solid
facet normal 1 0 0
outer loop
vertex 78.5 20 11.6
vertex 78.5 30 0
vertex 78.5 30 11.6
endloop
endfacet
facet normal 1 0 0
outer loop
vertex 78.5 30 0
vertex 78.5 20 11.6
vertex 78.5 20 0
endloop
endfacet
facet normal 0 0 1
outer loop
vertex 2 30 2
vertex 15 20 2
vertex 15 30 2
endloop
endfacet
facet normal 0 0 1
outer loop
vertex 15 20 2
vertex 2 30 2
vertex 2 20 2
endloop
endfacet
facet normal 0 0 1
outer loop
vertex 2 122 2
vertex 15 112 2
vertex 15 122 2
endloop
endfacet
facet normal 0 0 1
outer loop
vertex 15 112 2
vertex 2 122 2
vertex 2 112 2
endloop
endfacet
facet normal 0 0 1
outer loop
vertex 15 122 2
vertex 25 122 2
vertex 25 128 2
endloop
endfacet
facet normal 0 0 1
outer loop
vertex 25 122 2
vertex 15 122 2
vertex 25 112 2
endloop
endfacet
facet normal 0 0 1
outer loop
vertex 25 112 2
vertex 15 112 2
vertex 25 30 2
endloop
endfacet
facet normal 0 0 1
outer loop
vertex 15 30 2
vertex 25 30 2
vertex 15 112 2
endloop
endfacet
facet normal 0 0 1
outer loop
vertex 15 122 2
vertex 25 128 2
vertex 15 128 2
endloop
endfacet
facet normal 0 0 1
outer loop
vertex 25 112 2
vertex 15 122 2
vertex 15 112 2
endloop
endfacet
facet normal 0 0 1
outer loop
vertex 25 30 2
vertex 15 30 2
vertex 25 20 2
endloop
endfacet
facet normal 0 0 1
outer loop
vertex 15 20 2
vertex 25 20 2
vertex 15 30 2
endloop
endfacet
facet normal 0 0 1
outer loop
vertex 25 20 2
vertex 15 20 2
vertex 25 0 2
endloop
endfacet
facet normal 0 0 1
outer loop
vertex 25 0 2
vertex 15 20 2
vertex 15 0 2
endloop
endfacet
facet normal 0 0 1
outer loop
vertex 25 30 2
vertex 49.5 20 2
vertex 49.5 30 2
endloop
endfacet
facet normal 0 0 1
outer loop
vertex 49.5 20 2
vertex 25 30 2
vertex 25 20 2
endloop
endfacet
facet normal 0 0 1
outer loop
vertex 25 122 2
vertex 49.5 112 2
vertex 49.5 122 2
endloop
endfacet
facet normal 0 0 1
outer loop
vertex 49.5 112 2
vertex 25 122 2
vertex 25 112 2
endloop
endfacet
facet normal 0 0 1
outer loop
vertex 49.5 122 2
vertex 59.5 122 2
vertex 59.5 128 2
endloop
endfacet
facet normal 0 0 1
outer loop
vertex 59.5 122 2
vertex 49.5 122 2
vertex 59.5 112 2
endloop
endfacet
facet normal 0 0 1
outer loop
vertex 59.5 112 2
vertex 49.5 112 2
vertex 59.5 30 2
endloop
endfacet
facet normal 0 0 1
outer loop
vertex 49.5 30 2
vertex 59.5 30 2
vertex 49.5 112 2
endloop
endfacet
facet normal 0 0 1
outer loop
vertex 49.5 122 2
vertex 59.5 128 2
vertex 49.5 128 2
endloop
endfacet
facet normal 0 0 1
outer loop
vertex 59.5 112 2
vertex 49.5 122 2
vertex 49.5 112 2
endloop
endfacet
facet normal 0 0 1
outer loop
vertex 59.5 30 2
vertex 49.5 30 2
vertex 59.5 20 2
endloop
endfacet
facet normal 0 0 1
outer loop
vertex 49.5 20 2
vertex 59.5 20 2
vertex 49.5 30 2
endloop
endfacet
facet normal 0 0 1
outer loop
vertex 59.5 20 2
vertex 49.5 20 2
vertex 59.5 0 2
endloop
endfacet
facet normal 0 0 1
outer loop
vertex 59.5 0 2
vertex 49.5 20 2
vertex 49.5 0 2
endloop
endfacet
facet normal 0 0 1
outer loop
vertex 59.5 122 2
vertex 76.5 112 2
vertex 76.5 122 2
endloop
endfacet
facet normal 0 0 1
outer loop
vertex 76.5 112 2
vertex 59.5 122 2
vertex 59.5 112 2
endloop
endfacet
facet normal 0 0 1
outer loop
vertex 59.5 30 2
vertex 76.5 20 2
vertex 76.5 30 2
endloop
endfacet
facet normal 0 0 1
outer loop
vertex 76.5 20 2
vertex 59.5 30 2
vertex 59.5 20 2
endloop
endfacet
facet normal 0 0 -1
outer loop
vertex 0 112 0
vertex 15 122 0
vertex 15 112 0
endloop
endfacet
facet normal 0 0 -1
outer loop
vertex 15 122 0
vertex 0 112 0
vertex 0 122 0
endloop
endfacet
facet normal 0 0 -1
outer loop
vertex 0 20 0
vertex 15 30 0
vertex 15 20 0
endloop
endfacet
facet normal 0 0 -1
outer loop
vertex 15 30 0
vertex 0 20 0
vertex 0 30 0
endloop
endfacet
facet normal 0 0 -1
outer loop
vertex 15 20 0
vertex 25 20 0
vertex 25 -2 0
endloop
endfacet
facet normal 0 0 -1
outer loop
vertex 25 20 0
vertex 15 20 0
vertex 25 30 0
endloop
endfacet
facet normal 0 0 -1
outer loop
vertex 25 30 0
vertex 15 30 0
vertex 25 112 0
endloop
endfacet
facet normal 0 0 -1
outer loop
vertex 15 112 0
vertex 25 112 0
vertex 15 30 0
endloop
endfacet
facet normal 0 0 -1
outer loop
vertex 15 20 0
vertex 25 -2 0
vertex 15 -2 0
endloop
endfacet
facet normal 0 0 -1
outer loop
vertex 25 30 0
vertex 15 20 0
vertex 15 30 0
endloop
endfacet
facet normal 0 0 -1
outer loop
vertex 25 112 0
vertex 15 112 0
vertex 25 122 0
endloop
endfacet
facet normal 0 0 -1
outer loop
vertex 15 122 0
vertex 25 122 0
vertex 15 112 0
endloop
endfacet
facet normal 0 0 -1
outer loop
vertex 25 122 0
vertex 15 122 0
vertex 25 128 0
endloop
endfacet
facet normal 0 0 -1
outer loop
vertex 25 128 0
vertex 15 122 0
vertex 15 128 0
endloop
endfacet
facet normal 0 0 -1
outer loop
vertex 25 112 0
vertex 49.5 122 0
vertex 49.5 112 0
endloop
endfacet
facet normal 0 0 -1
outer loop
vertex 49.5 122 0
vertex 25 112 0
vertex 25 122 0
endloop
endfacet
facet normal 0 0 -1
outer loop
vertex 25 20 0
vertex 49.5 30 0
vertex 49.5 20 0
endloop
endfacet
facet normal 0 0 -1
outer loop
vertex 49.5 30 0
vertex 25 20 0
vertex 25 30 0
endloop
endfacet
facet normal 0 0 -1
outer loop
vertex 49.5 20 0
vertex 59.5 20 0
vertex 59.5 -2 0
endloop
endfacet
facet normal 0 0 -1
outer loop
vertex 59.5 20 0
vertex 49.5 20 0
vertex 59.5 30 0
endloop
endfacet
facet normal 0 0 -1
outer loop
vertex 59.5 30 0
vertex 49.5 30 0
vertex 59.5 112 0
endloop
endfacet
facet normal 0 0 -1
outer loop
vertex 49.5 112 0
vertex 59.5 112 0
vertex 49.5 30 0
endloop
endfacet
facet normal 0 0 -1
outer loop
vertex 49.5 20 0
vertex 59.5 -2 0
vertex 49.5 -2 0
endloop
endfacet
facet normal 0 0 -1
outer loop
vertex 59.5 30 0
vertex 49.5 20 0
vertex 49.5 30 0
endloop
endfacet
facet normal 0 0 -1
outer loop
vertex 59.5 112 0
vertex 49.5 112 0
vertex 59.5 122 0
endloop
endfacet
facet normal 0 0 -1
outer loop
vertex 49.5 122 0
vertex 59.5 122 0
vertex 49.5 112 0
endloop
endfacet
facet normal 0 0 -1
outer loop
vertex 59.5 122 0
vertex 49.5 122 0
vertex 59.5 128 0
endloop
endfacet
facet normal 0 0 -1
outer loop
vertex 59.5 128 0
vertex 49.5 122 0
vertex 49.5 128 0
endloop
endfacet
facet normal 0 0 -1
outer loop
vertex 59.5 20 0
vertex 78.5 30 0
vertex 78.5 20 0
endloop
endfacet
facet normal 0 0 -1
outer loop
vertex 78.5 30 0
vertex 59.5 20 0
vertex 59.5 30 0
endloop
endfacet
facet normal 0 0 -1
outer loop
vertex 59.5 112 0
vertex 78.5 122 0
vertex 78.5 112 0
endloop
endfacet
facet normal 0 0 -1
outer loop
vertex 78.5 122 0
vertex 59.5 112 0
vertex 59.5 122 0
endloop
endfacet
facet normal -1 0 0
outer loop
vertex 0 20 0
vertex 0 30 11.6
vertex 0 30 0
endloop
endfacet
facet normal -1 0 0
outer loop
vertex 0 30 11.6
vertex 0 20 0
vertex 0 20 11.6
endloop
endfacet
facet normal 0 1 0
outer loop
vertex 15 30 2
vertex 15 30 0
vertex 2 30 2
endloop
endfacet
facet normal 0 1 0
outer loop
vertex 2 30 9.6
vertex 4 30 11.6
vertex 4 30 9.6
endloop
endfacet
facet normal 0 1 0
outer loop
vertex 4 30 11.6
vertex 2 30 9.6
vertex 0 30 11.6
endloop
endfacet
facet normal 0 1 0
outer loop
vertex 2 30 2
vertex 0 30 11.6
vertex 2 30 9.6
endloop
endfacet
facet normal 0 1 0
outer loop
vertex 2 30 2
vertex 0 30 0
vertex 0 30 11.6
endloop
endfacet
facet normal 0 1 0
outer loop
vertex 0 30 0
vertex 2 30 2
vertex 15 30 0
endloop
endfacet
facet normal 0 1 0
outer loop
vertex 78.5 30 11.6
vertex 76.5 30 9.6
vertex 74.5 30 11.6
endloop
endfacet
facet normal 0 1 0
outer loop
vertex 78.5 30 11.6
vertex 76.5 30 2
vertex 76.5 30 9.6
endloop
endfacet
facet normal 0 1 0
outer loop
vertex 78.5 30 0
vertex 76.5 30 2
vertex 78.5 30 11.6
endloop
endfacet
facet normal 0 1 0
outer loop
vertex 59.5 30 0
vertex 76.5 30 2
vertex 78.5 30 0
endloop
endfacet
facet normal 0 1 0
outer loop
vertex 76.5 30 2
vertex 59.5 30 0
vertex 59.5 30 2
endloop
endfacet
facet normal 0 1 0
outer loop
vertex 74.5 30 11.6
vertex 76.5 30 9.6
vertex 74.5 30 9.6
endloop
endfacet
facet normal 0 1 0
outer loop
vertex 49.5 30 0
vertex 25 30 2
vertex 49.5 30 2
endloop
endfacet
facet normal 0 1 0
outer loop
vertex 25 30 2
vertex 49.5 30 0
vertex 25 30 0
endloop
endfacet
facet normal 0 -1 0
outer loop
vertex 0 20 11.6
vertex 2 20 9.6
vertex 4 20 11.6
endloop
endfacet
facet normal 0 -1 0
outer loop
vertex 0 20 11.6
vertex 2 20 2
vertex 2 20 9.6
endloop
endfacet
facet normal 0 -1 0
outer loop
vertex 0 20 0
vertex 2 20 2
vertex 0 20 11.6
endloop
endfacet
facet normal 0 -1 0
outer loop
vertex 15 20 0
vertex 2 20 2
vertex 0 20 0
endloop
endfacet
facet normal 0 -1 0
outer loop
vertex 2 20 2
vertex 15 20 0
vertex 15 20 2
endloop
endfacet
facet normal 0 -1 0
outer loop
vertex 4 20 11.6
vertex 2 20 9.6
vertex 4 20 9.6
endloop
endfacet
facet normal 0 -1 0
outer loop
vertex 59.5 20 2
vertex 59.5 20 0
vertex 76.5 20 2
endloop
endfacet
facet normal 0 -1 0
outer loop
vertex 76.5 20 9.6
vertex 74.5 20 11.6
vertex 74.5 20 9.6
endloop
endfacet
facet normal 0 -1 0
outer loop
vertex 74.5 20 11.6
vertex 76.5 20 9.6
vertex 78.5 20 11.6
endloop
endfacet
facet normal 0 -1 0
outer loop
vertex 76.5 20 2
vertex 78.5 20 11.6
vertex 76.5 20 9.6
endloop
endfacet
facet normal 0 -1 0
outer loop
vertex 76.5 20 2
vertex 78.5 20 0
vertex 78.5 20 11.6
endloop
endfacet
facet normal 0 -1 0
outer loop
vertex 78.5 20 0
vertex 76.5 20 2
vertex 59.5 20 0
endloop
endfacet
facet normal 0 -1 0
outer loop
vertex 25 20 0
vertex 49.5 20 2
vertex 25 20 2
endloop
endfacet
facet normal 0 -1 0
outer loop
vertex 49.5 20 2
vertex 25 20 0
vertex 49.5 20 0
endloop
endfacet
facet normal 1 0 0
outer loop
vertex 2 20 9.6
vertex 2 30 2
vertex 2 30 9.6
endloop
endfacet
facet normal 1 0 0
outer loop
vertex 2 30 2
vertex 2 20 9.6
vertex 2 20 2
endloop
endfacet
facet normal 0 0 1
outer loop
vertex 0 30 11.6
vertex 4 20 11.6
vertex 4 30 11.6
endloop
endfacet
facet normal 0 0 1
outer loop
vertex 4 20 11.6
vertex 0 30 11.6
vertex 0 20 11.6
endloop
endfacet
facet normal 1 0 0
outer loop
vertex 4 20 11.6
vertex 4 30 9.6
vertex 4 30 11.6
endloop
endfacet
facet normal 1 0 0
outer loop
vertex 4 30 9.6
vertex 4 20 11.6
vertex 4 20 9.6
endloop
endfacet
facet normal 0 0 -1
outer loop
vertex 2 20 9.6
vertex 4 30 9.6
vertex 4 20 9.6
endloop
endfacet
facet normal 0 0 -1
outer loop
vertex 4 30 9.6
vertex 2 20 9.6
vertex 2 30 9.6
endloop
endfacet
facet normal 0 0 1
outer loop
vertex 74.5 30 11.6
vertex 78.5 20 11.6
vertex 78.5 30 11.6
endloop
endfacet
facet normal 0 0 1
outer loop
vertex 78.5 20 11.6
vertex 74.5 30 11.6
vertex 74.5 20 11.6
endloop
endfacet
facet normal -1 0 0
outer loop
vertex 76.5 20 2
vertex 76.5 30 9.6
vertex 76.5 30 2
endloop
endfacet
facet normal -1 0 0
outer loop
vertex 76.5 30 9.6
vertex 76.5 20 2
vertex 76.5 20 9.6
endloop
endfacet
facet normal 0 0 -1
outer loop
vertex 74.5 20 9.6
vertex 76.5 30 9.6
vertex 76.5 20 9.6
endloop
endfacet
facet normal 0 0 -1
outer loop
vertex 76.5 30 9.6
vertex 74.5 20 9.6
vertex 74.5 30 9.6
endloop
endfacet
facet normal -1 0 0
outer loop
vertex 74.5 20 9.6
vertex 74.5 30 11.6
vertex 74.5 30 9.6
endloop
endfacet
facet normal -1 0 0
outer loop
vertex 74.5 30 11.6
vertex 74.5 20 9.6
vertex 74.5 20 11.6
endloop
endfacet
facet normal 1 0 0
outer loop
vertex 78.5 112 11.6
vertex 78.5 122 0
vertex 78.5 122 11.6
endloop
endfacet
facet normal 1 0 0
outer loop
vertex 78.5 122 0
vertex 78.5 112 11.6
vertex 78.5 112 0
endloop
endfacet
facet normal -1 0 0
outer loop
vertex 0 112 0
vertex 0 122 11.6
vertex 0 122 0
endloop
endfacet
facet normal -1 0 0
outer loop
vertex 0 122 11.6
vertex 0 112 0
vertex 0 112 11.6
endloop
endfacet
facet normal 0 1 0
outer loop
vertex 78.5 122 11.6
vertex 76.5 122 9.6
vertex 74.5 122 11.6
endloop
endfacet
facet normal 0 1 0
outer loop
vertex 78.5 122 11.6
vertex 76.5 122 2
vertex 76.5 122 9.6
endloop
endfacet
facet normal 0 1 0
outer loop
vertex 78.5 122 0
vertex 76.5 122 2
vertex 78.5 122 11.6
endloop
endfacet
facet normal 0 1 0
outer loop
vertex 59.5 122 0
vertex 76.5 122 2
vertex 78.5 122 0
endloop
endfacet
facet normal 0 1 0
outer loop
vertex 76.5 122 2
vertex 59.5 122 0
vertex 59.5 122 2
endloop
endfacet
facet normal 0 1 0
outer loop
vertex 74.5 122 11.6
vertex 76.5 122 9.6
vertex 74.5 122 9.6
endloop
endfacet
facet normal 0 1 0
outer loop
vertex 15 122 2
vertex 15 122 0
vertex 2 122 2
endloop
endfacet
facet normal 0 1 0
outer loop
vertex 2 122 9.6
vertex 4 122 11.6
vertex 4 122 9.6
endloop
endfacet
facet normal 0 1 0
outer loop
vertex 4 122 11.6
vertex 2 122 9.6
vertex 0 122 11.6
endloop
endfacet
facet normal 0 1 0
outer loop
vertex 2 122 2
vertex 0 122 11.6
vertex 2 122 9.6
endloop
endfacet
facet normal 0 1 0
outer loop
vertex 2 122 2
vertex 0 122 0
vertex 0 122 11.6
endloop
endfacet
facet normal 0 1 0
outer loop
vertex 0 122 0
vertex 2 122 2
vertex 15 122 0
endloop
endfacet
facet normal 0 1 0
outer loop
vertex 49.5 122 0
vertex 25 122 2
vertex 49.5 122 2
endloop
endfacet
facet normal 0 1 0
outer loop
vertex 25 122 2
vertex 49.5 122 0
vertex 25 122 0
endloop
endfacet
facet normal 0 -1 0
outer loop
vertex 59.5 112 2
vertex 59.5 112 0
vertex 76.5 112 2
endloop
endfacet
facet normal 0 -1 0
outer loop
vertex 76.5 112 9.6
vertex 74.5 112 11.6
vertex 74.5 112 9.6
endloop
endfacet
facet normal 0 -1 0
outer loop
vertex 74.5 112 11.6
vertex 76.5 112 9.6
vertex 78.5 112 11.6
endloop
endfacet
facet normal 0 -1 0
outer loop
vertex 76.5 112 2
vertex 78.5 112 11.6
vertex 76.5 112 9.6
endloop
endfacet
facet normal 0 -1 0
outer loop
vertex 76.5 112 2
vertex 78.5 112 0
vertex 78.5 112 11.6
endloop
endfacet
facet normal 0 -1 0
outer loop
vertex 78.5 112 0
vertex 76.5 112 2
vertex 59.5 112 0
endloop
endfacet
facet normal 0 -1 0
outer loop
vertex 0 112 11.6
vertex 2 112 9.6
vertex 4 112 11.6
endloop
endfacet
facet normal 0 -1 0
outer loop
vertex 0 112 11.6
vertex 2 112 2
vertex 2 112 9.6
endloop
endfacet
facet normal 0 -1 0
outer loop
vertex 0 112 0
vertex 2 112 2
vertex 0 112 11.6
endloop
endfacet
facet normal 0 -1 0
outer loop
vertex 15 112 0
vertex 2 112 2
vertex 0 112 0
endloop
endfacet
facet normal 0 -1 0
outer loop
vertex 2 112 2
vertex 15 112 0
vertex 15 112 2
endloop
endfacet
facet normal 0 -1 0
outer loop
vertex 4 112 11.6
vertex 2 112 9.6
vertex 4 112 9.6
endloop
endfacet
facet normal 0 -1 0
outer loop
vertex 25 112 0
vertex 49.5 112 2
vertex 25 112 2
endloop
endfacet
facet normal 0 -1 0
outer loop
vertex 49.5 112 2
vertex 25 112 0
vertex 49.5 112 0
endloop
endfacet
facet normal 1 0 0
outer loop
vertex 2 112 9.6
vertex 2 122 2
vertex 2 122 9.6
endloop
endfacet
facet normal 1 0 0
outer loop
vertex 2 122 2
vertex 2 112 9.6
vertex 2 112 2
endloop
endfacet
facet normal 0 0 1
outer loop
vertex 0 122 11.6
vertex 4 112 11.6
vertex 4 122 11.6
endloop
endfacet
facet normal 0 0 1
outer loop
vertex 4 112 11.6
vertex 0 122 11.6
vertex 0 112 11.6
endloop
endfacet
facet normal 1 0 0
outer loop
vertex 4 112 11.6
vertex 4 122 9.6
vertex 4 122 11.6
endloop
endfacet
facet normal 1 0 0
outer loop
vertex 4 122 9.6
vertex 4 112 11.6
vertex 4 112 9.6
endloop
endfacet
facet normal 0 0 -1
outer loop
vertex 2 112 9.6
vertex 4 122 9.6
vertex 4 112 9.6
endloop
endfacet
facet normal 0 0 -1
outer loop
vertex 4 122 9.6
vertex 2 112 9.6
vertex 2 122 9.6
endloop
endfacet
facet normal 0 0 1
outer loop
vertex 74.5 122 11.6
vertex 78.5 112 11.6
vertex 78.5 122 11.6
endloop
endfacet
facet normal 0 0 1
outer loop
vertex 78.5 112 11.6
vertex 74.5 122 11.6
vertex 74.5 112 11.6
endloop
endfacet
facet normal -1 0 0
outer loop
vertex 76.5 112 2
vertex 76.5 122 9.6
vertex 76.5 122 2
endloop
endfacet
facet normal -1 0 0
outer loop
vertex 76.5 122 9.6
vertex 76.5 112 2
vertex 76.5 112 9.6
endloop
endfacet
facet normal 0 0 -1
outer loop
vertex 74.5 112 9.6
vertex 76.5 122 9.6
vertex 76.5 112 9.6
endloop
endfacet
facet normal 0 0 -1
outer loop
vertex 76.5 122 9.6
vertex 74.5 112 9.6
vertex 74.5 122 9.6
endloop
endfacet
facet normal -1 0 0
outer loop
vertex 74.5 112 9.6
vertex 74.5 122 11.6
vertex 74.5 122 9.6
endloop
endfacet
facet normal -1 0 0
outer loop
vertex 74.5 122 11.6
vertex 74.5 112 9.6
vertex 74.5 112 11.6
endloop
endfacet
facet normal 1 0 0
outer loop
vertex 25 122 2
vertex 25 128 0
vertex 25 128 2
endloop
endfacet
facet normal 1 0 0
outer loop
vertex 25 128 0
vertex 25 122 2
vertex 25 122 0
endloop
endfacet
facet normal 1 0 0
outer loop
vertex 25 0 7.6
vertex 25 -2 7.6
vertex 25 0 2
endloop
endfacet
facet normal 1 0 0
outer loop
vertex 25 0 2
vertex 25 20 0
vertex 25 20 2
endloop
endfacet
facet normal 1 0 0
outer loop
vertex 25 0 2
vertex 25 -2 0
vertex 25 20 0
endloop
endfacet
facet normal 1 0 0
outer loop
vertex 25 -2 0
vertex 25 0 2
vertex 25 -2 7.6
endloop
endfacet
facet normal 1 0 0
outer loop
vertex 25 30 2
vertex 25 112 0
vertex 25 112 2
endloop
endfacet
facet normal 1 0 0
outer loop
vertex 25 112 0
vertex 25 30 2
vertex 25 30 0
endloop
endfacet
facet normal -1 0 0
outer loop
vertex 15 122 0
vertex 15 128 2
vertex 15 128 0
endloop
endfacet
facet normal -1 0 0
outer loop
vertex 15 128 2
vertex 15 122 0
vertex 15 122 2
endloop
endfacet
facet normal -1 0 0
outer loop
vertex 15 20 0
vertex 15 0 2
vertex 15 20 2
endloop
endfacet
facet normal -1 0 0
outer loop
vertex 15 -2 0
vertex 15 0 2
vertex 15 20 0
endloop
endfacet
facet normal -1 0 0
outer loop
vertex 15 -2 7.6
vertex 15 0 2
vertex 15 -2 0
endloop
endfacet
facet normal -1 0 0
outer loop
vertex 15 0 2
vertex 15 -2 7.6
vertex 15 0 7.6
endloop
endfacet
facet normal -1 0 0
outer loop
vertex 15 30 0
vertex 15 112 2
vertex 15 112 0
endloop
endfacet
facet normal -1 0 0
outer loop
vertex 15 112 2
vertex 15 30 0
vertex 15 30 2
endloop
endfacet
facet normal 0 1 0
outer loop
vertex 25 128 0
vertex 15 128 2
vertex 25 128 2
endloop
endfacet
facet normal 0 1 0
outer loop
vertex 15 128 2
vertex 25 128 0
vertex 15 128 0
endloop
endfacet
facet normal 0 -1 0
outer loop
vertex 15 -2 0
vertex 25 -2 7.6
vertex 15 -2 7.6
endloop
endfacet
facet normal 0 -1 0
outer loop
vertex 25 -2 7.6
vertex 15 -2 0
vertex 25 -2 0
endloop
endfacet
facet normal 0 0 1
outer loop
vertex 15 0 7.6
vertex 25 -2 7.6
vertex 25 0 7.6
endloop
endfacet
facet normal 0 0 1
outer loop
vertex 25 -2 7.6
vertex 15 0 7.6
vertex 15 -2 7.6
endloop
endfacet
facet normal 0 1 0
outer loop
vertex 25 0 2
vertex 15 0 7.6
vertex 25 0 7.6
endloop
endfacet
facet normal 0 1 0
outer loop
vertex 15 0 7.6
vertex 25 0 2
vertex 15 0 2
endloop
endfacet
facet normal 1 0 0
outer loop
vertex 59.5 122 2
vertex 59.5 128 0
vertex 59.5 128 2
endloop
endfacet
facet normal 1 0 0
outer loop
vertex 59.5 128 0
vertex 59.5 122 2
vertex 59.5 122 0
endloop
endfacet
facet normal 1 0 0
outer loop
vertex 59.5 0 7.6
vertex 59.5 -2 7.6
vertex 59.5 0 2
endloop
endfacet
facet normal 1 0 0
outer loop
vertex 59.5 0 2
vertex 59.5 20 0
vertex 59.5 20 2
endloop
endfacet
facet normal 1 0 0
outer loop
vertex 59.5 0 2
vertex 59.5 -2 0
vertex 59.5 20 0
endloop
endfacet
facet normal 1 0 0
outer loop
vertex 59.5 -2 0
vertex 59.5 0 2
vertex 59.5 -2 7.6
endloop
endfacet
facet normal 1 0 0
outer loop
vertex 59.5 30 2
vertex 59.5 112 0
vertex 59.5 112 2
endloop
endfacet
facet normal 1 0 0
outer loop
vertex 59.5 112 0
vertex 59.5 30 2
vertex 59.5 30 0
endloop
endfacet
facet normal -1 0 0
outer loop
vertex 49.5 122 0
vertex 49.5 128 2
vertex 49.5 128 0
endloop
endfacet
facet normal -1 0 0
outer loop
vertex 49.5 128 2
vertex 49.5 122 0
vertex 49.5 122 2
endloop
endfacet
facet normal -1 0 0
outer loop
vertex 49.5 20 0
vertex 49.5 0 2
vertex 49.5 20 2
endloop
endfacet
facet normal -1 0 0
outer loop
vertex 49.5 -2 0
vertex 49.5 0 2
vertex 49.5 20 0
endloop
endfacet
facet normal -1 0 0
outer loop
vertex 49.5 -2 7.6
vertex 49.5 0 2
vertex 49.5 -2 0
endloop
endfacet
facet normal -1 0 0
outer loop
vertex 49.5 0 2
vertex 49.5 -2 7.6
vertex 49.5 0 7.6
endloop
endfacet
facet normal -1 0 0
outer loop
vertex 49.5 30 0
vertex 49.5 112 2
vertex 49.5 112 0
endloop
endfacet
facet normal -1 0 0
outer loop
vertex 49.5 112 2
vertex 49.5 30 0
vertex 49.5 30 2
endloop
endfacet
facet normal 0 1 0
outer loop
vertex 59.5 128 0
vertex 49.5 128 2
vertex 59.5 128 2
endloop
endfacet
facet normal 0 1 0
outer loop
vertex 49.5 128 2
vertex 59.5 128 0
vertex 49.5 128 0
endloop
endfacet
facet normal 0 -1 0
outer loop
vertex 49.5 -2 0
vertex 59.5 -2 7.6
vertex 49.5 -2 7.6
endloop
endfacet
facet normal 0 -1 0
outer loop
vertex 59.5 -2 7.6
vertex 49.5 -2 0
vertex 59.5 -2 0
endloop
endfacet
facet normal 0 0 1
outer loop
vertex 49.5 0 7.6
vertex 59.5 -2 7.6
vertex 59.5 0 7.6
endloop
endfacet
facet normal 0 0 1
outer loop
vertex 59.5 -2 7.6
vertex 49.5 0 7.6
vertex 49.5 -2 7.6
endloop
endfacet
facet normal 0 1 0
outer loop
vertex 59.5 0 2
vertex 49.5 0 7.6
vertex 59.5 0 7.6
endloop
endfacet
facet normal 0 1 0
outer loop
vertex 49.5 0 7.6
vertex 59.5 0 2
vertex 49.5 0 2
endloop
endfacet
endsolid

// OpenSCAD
width=74.5;
height=7.6;
thick=2;

top_clamp_from_bottom=112;
clamp_thickness=10;

for (y = [20, top_clamp_from_bottom]) {
  translate([0, y, 0])
    cube([width + 2 * thick, clamp_thickness, thick]);

  translate([0, y, 0])
    cube([thick, clamp_thickness, height + 2 * thick]);
  translate([0, y, height + thick])
    cube([4, clamp_thickness, thick]);

  translate([width + thick, y, 0])
    cube([thick, clamp_thickness, height + 2 * thick]);
  translate([width + 2 * thick - 4, y, height + thick])
    cube([4, clamp_thickness, thick]);
}

for (x = [15, width - 15 - clamp_thickness]) {
  translate([x, -thick, 0])
    cube([clamp_thickness, 130, thick]);
  translate([x, -thick, 0])
    cube([clamp_thickness, thick, height]);
}
